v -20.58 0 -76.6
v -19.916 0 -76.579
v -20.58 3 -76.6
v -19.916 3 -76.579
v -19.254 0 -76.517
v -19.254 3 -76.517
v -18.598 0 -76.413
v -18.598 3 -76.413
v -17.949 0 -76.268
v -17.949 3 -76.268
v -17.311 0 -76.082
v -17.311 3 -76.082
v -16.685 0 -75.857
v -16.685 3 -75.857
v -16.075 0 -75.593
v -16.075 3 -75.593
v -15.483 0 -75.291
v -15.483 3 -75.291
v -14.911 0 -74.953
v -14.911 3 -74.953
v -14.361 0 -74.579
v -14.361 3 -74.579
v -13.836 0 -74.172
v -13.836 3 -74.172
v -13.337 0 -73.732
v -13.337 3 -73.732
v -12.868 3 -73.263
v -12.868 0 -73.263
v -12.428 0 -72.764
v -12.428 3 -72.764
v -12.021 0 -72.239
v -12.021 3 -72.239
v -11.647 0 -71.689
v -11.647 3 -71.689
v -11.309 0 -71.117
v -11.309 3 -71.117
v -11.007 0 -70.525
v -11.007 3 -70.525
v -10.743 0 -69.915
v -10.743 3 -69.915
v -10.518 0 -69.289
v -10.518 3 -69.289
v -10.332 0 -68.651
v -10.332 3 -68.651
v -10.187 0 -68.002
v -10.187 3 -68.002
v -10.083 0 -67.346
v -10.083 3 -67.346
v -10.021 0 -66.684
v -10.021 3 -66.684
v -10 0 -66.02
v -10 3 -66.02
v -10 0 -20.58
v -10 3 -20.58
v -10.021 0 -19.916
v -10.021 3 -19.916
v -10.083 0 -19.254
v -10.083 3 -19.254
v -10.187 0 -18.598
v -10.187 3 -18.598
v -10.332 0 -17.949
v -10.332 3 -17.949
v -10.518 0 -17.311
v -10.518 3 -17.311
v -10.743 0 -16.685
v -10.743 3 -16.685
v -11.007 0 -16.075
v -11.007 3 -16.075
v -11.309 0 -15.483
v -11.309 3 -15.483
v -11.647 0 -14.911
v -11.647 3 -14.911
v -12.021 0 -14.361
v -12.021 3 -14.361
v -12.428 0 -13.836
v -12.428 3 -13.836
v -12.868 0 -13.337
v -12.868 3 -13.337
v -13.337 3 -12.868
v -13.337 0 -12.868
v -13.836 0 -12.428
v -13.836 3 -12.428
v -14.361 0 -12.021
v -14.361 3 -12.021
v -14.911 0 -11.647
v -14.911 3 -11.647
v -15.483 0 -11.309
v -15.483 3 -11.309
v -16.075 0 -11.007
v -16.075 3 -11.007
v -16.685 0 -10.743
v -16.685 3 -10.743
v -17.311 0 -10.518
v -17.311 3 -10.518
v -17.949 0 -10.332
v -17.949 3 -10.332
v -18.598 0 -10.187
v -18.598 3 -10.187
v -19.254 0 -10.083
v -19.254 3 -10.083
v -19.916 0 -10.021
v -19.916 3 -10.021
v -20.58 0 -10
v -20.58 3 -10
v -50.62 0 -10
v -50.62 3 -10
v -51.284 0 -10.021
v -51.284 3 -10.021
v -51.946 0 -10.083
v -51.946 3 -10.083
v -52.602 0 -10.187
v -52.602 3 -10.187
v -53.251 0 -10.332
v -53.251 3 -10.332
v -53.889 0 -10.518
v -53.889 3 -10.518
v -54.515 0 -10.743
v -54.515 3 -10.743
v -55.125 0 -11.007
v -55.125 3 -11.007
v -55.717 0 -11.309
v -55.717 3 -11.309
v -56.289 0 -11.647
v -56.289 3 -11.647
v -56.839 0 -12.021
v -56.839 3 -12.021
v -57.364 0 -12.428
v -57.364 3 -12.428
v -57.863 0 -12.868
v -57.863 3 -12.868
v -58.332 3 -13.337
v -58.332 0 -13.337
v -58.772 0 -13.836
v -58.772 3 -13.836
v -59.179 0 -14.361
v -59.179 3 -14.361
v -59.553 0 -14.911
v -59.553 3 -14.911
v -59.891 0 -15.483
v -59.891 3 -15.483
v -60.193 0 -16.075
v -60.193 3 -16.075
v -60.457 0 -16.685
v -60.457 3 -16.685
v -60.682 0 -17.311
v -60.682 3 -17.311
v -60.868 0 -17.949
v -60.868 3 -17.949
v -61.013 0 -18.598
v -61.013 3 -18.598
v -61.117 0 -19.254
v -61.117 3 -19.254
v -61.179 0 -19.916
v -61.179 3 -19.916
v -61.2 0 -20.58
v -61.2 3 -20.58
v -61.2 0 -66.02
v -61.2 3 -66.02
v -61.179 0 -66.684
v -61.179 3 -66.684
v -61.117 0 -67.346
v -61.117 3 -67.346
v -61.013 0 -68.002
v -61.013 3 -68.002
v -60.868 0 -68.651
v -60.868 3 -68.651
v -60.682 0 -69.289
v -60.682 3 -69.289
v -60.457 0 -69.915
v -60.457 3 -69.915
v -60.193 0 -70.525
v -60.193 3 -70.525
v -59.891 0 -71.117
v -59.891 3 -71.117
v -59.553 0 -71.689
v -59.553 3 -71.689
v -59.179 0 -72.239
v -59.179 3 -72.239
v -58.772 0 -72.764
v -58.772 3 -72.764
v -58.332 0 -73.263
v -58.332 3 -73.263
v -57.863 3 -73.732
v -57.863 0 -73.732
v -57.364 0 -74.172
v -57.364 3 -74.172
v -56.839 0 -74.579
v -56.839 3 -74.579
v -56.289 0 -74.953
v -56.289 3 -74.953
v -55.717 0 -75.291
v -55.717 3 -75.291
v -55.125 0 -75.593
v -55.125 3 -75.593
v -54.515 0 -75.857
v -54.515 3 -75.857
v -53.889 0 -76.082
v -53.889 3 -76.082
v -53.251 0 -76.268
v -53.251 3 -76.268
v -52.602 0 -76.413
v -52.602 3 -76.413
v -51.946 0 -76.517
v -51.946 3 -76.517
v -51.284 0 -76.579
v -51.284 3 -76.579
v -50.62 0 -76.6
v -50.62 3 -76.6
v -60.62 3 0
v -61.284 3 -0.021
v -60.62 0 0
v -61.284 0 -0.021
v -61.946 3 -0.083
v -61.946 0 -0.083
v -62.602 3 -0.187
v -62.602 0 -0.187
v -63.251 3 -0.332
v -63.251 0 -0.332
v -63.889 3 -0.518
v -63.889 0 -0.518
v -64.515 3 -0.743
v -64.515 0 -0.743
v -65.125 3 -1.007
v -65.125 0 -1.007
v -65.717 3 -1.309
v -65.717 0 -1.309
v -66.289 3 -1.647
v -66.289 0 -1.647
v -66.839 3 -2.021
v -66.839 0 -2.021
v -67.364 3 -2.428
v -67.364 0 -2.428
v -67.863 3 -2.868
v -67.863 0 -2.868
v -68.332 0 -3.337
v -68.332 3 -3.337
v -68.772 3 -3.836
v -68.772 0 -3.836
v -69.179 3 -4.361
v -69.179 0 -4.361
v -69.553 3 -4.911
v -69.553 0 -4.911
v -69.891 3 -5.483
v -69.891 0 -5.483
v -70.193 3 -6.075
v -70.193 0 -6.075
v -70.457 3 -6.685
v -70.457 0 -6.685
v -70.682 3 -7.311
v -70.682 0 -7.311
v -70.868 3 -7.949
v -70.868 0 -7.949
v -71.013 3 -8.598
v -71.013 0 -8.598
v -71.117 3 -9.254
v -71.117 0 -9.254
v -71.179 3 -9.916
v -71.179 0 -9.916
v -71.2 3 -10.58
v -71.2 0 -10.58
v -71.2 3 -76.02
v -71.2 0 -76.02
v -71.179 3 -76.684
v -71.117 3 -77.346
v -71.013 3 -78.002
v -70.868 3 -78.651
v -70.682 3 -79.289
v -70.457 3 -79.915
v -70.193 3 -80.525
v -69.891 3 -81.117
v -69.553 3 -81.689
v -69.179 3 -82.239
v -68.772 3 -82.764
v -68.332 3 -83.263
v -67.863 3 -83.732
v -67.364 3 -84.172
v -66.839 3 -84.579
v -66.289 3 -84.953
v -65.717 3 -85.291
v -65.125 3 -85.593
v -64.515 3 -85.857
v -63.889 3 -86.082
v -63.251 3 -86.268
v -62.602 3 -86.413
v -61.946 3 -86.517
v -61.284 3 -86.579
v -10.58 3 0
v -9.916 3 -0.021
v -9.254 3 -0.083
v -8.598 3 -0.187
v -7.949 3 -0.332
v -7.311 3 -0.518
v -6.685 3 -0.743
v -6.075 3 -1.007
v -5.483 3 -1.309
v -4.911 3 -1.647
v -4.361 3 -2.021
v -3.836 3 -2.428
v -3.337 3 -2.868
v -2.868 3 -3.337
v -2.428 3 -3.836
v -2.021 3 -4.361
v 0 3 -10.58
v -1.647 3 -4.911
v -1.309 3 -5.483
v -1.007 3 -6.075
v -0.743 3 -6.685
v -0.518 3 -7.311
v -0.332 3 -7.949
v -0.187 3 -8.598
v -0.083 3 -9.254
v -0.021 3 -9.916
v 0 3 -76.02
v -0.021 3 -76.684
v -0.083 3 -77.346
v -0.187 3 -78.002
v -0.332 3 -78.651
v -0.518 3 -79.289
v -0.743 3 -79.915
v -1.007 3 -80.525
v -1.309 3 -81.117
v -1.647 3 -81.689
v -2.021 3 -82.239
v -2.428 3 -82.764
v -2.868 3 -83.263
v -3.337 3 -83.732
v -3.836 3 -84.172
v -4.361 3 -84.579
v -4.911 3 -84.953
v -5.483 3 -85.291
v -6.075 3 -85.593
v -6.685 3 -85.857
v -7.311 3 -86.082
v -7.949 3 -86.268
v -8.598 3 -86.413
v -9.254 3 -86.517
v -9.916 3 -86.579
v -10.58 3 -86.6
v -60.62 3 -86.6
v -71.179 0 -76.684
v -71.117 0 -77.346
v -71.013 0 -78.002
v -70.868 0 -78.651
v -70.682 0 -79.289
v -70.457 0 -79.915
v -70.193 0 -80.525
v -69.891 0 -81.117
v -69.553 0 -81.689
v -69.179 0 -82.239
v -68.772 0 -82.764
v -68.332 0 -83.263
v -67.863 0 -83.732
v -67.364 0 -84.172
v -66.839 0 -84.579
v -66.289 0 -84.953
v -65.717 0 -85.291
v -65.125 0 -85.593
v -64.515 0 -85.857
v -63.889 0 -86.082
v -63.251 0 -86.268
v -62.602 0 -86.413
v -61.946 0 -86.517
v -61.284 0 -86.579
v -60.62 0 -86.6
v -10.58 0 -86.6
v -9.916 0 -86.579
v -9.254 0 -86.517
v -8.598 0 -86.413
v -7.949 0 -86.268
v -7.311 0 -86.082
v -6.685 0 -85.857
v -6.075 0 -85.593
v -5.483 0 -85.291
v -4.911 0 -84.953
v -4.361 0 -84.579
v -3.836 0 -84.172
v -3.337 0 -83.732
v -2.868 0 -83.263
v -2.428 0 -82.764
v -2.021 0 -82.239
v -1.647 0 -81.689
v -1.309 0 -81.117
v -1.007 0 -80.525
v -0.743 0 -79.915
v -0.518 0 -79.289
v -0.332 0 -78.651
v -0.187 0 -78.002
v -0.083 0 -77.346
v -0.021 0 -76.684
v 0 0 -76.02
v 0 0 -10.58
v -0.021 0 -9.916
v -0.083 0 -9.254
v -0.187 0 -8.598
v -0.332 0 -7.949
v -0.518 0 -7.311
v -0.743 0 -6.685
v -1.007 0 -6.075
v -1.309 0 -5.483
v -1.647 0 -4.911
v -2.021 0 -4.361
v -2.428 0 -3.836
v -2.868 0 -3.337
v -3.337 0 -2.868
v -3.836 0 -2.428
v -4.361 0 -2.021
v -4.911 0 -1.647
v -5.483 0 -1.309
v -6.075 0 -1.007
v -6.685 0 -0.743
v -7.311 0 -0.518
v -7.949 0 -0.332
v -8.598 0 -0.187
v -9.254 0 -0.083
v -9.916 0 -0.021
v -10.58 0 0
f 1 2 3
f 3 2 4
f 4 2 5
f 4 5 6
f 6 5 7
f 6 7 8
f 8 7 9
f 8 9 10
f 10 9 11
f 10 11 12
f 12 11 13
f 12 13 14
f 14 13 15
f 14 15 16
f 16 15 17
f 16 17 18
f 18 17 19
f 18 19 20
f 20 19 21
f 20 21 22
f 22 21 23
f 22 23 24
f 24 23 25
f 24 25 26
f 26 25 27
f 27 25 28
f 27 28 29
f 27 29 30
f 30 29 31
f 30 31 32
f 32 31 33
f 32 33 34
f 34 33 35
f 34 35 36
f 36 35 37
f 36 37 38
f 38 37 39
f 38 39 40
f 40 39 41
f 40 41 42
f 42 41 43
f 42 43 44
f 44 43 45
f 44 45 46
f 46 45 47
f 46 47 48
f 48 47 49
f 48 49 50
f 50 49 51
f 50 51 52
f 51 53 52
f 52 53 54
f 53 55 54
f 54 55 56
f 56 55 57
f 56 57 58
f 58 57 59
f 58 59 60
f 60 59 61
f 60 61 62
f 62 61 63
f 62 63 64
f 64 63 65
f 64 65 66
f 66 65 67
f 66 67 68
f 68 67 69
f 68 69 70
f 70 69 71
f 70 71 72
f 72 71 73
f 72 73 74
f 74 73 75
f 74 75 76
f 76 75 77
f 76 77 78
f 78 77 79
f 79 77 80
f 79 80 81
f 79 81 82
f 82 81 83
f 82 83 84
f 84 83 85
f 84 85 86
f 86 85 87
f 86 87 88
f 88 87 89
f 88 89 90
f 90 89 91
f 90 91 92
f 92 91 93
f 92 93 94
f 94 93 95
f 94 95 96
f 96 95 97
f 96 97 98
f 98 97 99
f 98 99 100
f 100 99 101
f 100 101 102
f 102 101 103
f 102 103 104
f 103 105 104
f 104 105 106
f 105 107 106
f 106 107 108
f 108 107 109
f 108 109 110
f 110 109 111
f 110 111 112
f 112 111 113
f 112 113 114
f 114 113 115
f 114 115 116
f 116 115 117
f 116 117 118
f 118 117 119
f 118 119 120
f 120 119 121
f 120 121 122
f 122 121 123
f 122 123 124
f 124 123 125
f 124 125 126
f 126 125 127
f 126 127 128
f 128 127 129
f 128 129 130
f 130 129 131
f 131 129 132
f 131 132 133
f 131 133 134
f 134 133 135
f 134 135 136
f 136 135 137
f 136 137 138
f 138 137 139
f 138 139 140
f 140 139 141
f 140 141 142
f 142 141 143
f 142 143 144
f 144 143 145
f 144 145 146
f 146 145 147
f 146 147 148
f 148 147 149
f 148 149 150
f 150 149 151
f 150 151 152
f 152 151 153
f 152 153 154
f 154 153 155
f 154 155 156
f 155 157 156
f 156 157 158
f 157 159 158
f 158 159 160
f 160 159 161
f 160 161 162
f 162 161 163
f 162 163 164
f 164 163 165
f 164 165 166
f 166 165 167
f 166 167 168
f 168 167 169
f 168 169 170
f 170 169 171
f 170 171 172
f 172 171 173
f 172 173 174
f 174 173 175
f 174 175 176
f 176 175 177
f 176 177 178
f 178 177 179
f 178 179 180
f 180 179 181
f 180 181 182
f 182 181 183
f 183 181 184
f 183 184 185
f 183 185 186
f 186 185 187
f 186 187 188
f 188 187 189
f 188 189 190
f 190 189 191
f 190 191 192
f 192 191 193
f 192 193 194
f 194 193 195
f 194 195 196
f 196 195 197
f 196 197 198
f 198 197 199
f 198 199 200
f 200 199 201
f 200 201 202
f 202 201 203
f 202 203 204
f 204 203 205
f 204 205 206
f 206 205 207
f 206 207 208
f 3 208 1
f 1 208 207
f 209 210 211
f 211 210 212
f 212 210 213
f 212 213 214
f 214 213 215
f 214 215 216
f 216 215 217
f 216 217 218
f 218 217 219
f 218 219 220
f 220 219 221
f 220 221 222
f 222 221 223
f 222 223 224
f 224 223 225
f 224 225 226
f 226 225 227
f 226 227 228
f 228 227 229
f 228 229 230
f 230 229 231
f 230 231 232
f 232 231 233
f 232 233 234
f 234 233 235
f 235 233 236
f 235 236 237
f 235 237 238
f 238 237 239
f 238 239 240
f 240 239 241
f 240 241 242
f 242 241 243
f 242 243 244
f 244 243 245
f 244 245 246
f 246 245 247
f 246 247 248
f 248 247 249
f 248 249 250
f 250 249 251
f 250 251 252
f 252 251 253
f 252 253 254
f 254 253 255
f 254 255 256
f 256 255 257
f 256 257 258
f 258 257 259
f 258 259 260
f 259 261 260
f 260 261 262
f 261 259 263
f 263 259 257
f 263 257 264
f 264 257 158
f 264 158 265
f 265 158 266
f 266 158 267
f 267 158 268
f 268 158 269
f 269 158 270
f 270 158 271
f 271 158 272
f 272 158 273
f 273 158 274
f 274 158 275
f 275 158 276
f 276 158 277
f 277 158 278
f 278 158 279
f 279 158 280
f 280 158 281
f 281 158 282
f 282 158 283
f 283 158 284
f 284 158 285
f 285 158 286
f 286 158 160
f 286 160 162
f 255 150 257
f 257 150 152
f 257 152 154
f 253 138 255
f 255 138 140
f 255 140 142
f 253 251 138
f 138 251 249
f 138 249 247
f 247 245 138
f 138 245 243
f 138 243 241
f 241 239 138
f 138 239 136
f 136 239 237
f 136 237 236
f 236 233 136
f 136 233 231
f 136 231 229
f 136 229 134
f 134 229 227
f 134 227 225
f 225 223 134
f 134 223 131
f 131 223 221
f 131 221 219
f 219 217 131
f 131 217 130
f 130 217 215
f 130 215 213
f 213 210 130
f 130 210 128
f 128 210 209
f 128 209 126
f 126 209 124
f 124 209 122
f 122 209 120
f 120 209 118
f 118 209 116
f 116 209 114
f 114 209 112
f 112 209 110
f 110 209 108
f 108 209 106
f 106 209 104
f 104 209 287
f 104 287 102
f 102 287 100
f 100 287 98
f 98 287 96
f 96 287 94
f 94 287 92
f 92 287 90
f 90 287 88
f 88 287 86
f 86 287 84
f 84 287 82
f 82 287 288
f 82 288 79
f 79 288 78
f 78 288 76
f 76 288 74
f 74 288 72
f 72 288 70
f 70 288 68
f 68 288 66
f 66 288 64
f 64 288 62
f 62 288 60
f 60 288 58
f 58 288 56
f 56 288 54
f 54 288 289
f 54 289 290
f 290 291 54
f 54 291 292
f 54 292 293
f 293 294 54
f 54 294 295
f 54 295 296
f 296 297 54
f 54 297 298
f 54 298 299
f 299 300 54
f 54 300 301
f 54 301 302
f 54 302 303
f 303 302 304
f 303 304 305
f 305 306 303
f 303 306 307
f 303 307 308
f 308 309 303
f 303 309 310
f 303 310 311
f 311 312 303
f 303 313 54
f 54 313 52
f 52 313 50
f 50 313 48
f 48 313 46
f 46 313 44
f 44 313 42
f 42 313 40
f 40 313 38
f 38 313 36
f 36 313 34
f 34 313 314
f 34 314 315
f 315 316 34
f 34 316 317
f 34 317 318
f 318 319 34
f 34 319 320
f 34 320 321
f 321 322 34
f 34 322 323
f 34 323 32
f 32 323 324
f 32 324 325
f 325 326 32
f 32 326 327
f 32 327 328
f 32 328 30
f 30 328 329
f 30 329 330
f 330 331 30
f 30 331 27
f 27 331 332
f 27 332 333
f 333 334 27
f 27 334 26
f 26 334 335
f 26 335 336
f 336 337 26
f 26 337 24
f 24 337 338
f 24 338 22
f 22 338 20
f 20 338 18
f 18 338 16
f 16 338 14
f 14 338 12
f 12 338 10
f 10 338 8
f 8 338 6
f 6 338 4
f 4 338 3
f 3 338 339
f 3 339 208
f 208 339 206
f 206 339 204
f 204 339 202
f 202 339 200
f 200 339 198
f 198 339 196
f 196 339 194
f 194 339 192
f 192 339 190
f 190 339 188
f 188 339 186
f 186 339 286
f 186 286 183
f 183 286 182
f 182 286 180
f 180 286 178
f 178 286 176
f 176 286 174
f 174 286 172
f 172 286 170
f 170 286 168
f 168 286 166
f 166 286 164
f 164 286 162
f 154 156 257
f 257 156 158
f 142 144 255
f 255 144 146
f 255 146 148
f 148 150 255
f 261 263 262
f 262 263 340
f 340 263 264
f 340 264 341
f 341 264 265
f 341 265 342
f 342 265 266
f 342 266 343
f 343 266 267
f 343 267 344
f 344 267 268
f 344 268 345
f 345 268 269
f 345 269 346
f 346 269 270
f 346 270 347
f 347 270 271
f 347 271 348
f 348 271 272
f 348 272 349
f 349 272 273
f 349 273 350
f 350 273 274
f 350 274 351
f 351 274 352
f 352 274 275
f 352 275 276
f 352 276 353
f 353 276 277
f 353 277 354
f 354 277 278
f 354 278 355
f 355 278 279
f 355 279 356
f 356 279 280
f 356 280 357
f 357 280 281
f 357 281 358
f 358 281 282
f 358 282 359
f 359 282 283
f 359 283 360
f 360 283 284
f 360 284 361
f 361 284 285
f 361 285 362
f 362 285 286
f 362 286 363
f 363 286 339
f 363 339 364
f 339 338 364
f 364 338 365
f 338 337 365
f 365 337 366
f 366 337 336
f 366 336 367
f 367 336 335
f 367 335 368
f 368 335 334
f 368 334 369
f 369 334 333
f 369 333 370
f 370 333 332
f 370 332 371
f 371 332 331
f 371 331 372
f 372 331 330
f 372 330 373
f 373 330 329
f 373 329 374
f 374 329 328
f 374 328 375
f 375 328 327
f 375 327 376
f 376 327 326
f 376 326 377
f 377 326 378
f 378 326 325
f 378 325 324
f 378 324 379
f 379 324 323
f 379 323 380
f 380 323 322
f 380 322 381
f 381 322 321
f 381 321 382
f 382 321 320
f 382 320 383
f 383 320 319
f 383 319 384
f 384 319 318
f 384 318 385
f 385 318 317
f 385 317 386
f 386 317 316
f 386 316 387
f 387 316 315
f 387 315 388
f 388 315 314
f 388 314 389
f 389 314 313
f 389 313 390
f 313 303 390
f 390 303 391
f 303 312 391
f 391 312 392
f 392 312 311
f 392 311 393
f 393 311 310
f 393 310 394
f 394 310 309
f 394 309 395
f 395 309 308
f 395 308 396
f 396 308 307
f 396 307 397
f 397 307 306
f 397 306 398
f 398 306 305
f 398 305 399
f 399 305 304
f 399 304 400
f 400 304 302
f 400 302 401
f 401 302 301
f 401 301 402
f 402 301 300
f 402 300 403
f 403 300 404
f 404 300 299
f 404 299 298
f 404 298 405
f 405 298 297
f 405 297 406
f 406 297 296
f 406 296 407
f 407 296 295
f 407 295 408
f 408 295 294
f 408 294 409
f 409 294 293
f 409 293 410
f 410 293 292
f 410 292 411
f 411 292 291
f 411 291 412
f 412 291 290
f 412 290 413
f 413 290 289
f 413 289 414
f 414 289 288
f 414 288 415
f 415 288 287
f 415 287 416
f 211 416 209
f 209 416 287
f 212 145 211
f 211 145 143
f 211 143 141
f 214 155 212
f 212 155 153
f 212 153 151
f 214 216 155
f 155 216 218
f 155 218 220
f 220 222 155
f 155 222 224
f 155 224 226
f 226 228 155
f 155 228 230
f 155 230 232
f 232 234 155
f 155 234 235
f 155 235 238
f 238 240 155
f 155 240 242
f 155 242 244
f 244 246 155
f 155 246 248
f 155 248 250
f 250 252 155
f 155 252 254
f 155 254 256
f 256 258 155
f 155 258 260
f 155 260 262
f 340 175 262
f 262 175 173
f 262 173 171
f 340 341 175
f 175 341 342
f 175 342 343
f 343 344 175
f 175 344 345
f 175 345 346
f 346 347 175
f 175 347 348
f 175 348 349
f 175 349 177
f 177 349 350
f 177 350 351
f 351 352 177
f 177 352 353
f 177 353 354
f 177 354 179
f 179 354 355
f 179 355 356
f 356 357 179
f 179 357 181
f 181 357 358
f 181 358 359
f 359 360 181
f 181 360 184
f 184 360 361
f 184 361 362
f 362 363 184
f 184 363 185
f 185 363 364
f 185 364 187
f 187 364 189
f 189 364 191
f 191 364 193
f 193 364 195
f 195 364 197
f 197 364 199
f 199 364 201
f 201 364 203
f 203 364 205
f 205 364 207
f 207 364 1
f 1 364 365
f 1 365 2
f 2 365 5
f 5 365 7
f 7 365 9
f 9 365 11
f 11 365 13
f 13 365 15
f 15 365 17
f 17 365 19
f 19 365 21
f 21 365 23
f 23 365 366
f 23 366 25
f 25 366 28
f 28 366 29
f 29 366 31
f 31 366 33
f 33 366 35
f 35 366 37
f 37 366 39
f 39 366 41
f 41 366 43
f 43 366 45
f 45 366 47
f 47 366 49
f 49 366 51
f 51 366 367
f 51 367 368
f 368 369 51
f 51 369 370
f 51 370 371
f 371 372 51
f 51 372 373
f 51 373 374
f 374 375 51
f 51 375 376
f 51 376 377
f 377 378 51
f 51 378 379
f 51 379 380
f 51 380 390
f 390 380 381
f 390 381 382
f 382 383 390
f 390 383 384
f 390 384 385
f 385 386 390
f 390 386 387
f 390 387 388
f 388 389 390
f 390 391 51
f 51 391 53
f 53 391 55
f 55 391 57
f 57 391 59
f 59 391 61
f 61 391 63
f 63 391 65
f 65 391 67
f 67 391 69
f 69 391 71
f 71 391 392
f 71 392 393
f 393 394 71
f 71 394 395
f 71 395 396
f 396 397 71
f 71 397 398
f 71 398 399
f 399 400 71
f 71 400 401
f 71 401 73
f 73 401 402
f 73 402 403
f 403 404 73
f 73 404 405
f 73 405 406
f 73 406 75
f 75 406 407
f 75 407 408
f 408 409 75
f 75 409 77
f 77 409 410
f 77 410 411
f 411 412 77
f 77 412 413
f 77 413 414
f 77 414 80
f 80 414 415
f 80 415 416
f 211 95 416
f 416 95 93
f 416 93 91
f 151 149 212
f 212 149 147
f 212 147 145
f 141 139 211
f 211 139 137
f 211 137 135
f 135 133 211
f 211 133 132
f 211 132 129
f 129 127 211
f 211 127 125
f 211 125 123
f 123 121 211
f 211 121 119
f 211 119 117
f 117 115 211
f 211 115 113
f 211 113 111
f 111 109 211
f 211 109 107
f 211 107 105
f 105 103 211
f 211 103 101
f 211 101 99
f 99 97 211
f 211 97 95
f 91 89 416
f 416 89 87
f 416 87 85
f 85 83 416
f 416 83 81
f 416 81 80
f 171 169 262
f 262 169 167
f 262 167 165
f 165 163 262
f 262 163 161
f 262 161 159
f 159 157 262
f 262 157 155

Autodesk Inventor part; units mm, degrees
ref_plane "YZ Plane" through (0, 0, 0) normal (1, 0, 0) x (0, 1, 0)
ref_plane "XZ Plane" through (0, 0, 0) normal (0, 1, 0) x (-1, 0, 0)
ref_plane "XY Plane" through (0, 0, 0) normal (0, 0, 1) x (1, 0, 0)
sketch "Sketch1" plane through (0, 0, 0) normal (0, 1, 0) x (-1, 0, 0)
  line L0 (0, 0) -> (13, 0)
  line L1 (13, 0) -> (13, -13)
  line L2 (13, -13) -> (0, -13)
  line L3 (0, -13) -> (0, 0)
  line L4 (13, -13) -> (58.2, -13)
  line L5 (58.2, -13) -> (58.2, -73.6)
  line L6 (58.2, -73.6) -> (13, -73.6)
  line L7 (13, -73.6) -> (13, -13)
  line L8 (58.2, -73.6) -> (71.2, -73.6)
  line L9 (71.2, -73.6) -> (71.2, -86.6)
  line L10 (71.2, -86.6) -> (58.2, -86.6)
  line L11 (58.2, -86.6) -> (58.2, -73.6)
  line L12 (0, 0) -> (71.2, 0)
  line L13 (71.2, 0) -> (71.2, -86.6)
  line L14 (71.2, -86.6) -> (0, -86.6)
  line L15 (0, -86.6) -> (0, 0)
  line L16 (58.2, -13) -> (61.2, -13)
  line L17 (61.2, -13) -> (61.2, -10)
  line L18 (61.2, -10) -> (58.2, -10)
  line L19 (58.2, -10) -> (58.2, -13)
  line L20 (13, -73.6) -> (10, -73.6)
  line L21 (10, -73.6) -> (10, -76.6)
  line L22 (10, -76.6) -> (13, -76.6)
  line L23 (13, -76.6) -> (13, -73.6)
  line L24 (61.2, -10) -> (10, -10)
  line L25 (10, -10) -> (10, -76.6)
  line L26 (10, -76.6) -> (61.2, -76.6)
  line L27 (61.2, -76.6) -> (61.2, -10)
  dimension "d0" = 13
  dimension "d1" = 13
  dimension "d2" = 45.2
  dimension "d3" = 60.6
  dimension "d4" = 13
  dimension "d5" = 13
  dimension "d6" = 3
  dimension "d7" = 3
  dimension "d8" = 3
  dimension "d9" = 3
extrude "Extrusion1" add sketch "Sketch1" along normal blind 3 contours L0 L1 L24 L25 L2 L3 | L12 L13 L8 L27 L17 L18 L24 L1 | L2 L25 L21 L22 L26 L11 L14 L15 | L9 L10 L11 L26 L27 L8
fillet "Fillet1" radius 10.58 4 edges at (0, 1.5, 0) (0, 1.5, -86.6) (-71.2, 1.5, -86.6) (-71.2, 1.5, 0)
fillet "Fillet2" radius 10.58 4 edges at (-61.2, 1.5, -76.6) (-61.2, 1.5, -10) (-10, 1.5, -10) (-10, 1.5, -76.6)
properties part number "Airpods Pro Top"
